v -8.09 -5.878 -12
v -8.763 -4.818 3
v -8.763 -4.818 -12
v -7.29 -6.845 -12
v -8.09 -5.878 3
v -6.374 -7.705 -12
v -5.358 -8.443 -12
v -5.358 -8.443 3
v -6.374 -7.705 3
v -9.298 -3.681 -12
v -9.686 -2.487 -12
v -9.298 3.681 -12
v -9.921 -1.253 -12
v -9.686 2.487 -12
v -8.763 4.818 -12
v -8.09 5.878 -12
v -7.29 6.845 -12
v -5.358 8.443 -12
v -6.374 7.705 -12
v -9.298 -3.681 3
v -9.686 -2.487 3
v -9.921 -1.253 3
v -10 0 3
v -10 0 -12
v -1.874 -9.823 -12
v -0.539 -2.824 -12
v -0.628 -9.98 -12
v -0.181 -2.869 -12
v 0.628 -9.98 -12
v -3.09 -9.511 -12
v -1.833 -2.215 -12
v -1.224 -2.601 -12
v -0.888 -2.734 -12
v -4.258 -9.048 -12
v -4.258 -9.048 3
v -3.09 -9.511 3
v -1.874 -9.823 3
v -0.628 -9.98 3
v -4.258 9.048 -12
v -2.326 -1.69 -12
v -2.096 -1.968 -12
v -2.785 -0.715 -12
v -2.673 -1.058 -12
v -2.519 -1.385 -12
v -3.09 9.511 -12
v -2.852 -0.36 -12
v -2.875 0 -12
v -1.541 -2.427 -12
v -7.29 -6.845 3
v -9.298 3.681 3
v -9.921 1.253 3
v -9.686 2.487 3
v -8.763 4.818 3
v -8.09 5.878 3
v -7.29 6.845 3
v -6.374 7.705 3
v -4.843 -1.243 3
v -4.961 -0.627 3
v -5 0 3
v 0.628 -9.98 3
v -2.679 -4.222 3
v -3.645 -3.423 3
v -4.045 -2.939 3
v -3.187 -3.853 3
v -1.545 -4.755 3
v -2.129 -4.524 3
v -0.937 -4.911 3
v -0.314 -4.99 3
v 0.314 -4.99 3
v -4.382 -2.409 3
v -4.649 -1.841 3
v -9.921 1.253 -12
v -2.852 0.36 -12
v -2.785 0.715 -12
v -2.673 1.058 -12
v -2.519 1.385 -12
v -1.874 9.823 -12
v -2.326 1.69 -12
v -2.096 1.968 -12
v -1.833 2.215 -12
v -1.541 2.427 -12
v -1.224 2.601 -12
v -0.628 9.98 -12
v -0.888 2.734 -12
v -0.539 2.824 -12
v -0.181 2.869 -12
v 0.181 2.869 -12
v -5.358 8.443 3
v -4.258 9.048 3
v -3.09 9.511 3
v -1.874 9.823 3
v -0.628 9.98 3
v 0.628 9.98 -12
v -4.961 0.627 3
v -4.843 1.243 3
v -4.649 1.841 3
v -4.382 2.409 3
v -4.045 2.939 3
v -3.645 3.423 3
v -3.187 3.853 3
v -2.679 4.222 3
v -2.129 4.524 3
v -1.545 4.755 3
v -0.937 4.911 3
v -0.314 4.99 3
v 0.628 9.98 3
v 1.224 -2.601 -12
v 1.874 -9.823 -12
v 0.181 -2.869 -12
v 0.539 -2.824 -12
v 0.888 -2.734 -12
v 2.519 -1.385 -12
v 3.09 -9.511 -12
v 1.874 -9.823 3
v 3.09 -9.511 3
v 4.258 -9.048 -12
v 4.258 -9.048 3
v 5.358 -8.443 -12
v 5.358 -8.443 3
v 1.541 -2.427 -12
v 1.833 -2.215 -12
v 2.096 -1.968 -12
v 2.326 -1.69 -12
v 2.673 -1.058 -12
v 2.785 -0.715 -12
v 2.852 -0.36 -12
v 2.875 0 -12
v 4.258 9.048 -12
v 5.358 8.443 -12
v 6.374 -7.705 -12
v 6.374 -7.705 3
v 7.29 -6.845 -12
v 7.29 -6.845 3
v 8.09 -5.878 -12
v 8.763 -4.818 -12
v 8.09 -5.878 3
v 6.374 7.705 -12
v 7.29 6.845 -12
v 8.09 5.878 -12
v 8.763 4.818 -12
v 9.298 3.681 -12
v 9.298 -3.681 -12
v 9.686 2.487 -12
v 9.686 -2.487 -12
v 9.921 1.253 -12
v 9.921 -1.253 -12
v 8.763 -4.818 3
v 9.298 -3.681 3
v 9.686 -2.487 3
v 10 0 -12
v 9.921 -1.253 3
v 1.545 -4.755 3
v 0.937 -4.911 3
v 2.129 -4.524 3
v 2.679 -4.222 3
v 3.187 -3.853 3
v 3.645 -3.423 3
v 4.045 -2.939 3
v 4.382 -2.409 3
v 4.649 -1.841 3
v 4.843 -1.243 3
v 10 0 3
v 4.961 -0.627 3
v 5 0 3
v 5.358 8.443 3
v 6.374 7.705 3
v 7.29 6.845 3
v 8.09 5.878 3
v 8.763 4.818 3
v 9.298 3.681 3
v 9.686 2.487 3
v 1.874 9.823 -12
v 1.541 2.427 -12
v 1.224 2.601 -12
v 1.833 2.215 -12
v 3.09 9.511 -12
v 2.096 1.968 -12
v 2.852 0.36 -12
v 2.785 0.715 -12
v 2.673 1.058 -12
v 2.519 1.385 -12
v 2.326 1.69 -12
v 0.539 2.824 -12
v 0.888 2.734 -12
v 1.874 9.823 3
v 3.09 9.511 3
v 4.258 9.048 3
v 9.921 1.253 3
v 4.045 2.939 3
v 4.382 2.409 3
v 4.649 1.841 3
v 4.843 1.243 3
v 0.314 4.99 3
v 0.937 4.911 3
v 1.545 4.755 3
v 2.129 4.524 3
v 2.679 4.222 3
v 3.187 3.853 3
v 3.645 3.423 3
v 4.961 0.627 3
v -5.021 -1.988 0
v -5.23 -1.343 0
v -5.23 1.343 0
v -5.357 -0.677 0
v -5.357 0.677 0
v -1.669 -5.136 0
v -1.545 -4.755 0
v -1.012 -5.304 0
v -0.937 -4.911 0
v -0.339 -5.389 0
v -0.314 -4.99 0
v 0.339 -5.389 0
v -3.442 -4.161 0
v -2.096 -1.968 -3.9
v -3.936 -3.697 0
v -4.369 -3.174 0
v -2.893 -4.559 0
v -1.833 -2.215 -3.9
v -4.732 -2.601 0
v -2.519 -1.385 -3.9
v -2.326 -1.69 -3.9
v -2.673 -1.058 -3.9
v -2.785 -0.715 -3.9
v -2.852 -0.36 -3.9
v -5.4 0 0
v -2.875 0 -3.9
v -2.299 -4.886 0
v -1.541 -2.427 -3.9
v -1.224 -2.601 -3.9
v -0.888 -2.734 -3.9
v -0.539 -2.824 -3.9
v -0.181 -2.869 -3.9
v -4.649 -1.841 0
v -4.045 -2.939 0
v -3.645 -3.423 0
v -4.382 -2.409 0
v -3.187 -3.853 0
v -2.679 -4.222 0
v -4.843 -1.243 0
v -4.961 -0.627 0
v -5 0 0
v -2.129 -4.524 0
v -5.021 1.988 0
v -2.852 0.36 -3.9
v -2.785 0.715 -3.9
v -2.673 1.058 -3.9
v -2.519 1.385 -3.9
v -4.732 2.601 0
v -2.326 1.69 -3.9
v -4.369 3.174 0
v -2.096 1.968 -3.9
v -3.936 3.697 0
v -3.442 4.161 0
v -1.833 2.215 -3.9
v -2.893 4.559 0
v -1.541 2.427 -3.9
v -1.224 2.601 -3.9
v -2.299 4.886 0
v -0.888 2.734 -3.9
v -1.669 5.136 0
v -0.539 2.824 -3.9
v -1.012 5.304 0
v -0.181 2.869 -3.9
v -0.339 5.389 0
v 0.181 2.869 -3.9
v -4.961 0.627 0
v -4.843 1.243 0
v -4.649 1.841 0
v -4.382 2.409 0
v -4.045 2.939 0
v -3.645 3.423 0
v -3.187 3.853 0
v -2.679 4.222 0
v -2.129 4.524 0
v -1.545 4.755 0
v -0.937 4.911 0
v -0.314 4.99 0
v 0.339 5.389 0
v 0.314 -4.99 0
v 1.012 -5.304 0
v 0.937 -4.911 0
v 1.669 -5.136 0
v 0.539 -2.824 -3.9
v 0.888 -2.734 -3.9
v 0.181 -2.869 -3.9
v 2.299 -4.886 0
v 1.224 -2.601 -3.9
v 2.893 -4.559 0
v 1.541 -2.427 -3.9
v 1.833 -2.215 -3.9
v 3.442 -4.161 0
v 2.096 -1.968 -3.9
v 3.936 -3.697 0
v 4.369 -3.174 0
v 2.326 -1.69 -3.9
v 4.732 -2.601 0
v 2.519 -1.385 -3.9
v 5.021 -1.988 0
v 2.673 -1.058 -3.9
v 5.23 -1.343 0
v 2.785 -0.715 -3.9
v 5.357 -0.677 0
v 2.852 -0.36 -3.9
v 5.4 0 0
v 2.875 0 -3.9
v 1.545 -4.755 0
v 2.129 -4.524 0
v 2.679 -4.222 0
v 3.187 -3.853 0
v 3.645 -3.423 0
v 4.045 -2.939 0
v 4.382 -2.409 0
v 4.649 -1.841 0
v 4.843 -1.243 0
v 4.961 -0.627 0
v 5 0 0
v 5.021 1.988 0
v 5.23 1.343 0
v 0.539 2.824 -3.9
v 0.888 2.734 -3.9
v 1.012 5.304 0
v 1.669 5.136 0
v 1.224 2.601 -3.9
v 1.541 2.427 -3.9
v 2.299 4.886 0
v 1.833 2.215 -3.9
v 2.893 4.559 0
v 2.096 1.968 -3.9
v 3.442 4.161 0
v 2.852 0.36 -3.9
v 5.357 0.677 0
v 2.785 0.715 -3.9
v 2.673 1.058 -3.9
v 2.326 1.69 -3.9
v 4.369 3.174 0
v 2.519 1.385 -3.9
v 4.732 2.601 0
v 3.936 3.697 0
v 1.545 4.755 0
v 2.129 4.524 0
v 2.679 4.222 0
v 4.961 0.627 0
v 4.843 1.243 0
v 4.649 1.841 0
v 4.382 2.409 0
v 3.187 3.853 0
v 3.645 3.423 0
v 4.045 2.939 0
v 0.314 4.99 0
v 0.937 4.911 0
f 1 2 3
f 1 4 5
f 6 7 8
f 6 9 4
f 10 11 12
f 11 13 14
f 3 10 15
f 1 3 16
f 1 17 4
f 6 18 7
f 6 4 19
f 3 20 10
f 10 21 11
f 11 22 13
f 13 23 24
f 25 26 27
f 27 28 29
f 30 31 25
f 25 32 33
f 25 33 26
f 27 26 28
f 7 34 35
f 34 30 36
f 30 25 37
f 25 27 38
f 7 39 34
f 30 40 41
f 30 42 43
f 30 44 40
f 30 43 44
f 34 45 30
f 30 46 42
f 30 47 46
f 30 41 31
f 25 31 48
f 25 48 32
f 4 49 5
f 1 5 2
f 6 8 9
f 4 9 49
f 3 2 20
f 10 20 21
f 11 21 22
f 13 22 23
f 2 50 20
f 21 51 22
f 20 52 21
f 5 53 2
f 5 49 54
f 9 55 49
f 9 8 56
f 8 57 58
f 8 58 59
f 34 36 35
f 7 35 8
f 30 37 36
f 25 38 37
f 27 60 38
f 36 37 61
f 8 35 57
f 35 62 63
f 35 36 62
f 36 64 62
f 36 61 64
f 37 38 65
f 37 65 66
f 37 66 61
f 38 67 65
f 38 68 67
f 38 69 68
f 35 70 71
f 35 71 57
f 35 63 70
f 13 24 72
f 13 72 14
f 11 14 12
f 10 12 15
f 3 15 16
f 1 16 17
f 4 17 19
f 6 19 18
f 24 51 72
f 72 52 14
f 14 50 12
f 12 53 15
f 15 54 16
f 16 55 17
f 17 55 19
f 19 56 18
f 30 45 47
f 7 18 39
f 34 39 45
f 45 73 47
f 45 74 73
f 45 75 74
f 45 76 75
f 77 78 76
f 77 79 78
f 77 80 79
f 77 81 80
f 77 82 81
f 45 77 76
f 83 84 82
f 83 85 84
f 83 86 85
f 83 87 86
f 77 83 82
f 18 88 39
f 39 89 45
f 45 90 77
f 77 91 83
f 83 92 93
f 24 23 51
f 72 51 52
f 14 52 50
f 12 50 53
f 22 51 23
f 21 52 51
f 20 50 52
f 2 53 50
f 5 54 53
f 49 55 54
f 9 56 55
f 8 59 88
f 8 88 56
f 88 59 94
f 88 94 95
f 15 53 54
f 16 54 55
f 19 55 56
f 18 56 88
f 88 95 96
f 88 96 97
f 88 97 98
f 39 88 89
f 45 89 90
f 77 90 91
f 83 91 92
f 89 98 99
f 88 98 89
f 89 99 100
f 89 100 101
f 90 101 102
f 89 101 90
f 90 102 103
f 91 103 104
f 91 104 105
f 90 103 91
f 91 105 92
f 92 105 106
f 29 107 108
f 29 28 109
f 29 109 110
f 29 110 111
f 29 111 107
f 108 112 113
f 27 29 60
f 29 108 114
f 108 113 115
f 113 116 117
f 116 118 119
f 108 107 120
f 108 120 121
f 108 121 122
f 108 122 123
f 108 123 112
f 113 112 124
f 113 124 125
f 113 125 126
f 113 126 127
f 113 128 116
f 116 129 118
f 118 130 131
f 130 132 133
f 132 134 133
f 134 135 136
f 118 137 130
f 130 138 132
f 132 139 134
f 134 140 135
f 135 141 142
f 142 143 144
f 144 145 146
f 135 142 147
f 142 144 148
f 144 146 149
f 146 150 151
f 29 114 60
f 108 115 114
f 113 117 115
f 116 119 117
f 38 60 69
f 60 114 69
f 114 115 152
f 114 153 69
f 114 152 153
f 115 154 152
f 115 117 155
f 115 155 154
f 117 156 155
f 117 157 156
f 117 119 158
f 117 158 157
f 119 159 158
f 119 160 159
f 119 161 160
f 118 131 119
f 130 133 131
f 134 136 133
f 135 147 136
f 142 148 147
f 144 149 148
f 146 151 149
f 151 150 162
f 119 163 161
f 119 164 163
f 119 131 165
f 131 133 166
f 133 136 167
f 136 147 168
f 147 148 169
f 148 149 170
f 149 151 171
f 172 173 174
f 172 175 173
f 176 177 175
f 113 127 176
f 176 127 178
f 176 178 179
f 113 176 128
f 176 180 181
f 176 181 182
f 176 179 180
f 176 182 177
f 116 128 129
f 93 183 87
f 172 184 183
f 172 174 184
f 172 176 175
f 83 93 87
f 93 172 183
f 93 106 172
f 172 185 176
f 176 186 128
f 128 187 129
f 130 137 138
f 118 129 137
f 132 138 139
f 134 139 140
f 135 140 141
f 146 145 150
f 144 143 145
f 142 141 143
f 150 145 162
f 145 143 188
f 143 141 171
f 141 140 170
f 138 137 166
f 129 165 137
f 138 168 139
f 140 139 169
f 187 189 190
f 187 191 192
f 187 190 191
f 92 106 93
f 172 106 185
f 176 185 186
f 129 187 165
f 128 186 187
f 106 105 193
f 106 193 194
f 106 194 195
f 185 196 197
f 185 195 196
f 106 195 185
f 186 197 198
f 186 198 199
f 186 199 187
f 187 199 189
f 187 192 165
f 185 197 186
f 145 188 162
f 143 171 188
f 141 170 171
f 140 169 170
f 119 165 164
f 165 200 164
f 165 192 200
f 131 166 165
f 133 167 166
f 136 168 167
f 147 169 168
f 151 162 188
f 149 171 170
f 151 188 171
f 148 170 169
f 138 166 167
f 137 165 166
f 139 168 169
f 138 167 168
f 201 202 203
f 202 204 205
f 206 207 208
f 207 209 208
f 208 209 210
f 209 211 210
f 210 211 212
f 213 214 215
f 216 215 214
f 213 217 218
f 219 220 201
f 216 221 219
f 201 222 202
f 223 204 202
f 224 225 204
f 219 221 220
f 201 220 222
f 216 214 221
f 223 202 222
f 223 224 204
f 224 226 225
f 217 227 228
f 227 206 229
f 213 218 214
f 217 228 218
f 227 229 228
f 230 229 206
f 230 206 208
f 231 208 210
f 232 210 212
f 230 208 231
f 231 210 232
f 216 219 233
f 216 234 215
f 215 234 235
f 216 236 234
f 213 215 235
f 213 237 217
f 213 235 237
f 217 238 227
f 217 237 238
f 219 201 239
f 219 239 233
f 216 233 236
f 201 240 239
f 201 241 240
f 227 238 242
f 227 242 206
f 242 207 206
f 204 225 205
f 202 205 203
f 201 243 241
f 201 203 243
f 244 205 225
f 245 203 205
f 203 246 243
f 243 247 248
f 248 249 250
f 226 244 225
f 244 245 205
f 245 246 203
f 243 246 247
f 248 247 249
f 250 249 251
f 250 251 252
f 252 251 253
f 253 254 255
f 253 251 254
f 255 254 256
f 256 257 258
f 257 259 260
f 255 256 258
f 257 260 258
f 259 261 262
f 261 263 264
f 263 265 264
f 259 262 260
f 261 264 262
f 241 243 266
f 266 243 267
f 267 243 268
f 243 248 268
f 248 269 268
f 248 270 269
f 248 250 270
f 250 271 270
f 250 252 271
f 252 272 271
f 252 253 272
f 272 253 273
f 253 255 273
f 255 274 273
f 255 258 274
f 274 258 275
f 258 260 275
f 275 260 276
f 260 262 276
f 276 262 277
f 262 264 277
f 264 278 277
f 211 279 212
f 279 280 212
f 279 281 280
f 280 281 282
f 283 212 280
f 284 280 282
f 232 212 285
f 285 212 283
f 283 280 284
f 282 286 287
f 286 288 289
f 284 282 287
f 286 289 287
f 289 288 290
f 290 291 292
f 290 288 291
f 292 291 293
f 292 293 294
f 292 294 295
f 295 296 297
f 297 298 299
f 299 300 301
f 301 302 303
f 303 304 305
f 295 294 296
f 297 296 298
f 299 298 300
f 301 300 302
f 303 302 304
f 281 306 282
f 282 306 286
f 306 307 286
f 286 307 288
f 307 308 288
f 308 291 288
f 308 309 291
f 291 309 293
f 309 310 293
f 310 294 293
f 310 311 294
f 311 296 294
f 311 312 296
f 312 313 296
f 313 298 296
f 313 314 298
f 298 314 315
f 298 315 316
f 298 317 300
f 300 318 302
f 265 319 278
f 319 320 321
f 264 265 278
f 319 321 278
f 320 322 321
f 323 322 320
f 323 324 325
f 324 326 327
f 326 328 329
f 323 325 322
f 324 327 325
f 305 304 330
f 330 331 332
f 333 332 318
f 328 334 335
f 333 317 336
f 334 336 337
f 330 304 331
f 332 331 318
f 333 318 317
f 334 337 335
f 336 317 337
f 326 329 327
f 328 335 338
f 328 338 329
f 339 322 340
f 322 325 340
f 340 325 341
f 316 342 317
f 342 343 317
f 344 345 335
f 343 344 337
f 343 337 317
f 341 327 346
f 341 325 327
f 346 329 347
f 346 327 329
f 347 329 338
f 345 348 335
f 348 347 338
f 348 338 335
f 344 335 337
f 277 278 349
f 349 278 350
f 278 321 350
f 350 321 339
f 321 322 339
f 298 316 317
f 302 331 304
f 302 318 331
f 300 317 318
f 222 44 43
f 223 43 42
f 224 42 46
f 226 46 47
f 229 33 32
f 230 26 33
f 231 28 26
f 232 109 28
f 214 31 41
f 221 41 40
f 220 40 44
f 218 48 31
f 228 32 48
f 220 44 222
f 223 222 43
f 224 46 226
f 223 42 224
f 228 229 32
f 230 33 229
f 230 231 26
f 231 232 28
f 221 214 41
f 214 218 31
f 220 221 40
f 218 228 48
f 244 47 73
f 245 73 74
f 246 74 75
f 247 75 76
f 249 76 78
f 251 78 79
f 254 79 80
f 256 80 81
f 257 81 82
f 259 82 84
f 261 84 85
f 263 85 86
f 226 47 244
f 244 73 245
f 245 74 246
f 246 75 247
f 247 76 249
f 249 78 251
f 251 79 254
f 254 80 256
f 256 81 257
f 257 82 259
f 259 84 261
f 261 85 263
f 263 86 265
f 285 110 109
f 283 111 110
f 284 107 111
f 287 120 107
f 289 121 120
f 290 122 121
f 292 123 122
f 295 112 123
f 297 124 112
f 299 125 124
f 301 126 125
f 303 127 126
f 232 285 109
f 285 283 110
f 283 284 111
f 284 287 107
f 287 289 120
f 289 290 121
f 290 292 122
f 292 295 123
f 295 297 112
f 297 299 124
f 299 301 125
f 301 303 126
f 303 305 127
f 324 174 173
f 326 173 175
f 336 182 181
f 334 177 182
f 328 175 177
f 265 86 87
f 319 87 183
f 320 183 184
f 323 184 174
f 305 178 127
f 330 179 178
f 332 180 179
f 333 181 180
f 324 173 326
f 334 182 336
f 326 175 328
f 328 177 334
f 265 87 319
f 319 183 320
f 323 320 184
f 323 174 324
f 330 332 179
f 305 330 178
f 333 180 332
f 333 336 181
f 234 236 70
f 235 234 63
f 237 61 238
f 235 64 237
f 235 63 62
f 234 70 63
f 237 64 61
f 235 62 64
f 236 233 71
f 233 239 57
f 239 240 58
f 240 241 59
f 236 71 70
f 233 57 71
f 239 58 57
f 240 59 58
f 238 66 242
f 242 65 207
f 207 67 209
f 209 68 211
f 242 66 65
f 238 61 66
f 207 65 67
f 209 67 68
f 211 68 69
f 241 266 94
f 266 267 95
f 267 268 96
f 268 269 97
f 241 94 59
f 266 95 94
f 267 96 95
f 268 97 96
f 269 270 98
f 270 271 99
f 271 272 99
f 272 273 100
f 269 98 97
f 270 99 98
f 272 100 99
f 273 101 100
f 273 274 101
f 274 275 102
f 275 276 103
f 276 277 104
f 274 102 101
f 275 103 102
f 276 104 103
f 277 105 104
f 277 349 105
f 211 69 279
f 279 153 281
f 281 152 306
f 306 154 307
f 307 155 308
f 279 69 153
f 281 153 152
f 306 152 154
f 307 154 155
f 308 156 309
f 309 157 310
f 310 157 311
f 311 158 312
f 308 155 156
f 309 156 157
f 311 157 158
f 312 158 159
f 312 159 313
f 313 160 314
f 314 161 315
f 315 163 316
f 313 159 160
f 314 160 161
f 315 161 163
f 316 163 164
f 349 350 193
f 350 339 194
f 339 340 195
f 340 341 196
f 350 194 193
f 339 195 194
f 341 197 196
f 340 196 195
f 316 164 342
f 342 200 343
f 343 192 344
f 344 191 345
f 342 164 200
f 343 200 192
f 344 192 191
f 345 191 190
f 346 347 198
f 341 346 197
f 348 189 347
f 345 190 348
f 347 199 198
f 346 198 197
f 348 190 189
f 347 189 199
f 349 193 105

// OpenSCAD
$fn = 50;

difference() {
	union() {
		translate(v = [0, 0, -12.0]) {
			cylinder(h = 15, r = 10.0);
		}
		#translate(v = [0, 0, -15.0]) {
			cylinder(h = 15, r = 2.875);
		}
	}
	union() {
		translate(v = [0, 0, 0]) {
			rotate(a = [0, 0, 0]) {
				difference() {
					union() {
						translate(v = [0, 0, -15.0]) {
							cylinder(h = 15, r = 2.6);
						}
						translate(v = [0, 0, -3.9]) {
							cylinder(h = 3.9, r1 = 2.875, r2 = 5.4);
						}
						translate(v = [0, 0, -15.0]) {
							cylinder(h = 15, r = 2.875);
						}
						translate(v = [0, 0, -15.0]) {
							cylinder(h = 15, r = 2.6);
						}
					}
					union();
				}
			}
		}
		#cylinder(h = 3, r = 5.0);
	}
}
